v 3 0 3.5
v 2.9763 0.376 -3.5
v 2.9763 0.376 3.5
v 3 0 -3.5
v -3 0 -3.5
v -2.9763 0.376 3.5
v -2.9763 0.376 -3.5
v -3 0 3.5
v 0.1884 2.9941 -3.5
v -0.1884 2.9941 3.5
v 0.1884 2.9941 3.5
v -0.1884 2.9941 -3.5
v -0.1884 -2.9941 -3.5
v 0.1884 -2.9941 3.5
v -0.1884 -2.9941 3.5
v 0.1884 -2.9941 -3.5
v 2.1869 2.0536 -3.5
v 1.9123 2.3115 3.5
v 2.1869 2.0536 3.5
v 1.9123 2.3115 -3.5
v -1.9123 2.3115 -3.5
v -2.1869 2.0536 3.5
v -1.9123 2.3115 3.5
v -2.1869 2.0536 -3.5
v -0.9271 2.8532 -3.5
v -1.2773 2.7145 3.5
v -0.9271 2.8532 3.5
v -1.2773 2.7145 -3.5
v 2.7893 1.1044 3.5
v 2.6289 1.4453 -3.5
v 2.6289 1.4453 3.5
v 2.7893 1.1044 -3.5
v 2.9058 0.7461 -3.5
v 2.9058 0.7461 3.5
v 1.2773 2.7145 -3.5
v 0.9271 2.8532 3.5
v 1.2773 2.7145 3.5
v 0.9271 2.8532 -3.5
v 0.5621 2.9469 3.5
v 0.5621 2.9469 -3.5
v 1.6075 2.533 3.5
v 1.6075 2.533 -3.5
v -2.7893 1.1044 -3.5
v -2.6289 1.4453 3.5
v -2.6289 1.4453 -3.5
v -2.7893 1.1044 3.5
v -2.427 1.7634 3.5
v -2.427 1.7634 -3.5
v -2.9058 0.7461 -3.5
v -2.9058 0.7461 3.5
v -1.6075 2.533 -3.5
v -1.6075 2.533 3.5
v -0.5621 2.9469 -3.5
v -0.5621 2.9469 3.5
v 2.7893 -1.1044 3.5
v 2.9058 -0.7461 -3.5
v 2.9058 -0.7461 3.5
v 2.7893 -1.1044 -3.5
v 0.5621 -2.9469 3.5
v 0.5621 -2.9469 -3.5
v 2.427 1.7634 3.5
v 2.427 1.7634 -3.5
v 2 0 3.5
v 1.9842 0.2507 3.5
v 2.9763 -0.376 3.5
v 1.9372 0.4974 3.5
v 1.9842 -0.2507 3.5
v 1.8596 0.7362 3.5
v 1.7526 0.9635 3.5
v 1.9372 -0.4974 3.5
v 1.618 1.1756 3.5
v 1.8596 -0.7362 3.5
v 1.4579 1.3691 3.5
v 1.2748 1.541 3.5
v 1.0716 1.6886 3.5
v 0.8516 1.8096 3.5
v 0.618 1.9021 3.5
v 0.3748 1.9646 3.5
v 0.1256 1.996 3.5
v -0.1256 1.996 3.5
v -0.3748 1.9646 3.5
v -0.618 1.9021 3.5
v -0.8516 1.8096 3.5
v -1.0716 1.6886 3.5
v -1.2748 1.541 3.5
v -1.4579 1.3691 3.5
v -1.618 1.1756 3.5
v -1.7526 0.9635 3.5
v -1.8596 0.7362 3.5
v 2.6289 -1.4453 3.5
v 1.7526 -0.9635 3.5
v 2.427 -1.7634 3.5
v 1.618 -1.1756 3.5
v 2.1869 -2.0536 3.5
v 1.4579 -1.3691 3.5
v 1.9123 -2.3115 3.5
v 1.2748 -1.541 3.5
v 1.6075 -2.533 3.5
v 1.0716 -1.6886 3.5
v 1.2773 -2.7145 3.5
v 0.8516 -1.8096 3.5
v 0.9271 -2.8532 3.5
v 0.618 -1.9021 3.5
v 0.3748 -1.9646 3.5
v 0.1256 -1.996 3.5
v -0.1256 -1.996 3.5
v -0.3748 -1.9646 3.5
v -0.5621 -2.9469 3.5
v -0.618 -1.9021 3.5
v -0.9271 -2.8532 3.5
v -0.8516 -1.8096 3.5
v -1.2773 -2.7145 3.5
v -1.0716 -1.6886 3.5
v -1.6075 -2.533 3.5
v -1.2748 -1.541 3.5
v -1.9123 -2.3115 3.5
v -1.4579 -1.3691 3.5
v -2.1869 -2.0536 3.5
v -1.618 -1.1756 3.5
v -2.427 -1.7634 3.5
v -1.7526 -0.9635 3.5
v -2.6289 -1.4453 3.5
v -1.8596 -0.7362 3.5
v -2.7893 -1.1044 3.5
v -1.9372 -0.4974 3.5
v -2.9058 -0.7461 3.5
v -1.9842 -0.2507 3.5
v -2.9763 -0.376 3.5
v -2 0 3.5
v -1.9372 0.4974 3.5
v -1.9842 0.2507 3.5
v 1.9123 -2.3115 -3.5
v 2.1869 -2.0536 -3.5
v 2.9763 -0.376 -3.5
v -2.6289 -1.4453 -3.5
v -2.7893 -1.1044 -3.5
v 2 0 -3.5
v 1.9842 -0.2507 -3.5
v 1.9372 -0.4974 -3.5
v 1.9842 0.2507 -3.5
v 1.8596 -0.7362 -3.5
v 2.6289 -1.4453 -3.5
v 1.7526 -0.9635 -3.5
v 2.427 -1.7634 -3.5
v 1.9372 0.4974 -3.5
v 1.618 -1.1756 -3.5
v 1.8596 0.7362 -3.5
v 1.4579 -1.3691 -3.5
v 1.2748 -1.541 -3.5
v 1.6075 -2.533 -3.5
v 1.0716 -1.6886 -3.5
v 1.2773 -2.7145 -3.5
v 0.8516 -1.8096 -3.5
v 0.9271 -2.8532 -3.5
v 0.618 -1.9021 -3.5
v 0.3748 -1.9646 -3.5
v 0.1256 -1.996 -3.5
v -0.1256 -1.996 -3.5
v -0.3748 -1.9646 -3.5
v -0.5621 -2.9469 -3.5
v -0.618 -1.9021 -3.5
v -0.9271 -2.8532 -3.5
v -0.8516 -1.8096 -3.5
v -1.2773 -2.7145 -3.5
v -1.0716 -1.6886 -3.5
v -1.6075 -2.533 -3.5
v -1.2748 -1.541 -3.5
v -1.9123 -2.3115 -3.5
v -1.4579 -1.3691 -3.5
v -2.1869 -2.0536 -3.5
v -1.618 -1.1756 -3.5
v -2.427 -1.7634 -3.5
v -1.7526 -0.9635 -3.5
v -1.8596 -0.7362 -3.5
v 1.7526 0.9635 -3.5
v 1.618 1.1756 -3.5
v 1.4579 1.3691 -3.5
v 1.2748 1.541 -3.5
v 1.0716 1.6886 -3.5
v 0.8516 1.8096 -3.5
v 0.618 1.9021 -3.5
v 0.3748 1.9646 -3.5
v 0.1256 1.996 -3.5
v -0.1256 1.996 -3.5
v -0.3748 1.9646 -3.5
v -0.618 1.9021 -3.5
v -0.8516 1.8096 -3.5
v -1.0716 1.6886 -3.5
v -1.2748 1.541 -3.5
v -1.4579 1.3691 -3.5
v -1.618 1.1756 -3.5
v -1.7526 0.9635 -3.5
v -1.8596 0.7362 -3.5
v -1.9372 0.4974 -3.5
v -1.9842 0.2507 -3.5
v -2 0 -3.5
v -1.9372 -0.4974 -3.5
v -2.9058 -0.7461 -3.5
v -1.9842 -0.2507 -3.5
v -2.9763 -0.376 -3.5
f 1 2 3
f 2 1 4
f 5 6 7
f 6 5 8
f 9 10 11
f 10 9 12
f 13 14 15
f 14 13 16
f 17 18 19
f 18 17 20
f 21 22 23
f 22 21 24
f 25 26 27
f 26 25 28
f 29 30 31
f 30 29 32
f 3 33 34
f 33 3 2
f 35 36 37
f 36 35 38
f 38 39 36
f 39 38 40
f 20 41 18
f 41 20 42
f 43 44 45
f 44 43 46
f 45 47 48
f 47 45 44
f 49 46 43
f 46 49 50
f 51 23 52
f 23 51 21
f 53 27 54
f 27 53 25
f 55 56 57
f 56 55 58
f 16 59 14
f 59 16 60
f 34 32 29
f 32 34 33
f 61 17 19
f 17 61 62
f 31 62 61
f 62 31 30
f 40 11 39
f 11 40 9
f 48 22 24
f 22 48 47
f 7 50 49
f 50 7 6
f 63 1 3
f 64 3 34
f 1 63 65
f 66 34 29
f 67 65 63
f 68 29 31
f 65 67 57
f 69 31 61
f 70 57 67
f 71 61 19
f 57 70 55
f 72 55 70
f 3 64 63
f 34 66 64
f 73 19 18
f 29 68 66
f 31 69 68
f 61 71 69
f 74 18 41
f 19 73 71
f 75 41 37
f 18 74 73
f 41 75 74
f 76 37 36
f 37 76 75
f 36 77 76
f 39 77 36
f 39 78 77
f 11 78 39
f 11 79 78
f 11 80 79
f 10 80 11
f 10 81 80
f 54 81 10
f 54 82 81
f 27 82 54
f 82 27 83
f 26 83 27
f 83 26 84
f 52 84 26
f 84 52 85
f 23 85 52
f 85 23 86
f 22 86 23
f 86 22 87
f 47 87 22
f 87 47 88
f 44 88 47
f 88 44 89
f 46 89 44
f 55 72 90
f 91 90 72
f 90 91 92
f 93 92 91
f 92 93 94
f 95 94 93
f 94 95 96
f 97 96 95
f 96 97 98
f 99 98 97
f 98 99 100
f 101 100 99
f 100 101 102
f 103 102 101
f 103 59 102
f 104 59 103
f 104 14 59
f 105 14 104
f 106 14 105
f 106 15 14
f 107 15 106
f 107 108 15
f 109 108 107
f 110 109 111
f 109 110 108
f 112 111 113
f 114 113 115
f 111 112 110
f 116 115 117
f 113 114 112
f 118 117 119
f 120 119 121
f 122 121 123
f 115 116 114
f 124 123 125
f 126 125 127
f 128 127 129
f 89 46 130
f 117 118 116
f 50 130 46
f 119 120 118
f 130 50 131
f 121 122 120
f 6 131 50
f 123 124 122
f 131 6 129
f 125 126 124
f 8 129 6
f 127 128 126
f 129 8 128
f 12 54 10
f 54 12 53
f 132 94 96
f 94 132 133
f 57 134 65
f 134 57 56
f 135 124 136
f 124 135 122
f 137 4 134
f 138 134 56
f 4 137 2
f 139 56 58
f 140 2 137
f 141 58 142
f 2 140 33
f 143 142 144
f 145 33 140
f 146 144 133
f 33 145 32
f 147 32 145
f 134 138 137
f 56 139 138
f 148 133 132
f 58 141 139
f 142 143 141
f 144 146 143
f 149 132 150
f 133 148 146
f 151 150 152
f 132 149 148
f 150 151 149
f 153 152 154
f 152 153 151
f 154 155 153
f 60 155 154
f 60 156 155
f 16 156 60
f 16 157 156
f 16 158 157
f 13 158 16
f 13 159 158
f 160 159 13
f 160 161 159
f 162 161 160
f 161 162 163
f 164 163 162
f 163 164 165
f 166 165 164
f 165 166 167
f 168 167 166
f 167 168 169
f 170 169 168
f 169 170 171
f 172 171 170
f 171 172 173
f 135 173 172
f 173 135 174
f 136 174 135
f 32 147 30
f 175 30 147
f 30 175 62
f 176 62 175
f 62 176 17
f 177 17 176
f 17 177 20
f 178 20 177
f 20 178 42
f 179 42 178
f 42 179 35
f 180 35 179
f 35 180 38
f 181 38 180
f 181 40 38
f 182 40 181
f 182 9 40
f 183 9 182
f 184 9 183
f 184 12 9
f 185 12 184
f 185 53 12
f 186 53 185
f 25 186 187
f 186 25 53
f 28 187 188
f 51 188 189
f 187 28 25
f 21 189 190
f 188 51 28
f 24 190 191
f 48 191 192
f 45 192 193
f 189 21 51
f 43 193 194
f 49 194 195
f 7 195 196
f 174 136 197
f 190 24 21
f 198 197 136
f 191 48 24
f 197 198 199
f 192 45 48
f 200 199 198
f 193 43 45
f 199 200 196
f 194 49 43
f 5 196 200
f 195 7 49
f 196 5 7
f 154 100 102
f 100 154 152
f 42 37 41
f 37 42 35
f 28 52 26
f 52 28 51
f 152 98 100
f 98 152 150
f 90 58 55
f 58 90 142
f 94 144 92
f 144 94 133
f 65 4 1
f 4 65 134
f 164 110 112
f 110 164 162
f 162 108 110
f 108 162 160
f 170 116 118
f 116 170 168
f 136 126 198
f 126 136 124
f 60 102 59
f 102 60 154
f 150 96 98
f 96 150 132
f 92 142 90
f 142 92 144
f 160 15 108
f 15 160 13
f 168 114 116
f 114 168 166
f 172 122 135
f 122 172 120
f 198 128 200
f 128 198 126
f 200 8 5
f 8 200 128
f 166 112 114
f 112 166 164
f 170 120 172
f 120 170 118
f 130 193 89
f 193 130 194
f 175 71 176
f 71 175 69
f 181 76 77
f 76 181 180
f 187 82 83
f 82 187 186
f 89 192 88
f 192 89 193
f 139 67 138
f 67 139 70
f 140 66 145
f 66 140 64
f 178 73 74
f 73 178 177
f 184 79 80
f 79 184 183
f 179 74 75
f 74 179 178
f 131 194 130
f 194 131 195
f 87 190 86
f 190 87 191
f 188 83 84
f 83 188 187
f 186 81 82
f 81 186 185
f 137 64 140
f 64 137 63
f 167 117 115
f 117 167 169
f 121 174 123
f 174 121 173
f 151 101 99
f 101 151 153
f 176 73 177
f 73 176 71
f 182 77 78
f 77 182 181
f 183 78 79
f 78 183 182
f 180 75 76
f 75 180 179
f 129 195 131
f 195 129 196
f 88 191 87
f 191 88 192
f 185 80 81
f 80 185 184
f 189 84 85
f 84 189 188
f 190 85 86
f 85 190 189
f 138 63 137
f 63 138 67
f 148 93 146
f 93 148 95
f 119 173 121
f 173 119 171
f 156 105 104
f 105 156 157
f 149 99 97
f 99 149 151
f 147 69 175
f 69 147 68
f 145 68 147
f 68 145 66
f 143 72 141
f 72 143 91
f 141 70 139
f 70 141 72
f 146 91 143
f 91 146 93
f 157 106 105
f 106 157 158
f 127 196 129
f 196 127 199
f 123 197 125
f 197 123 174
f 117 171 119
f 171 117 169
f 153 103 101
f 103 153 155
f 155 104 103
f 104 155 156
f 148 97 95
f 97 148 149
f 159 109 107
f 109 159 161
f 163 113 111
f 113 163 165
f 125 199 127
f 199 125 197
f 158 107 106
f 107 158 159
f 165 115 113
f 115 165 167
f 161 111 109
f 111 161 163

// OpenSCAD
$fn = 50;


difference() {
	union() {
		translate(v = [0, 0, -3.5000000000]) {
			cylinder(h = 7, r = 3.0000000000);
		}
	}
	union() {
		translate(v = [0, 0, -100.0000000000]) {
			cylinder(h = 200, r = 2);
		}
	}
}
